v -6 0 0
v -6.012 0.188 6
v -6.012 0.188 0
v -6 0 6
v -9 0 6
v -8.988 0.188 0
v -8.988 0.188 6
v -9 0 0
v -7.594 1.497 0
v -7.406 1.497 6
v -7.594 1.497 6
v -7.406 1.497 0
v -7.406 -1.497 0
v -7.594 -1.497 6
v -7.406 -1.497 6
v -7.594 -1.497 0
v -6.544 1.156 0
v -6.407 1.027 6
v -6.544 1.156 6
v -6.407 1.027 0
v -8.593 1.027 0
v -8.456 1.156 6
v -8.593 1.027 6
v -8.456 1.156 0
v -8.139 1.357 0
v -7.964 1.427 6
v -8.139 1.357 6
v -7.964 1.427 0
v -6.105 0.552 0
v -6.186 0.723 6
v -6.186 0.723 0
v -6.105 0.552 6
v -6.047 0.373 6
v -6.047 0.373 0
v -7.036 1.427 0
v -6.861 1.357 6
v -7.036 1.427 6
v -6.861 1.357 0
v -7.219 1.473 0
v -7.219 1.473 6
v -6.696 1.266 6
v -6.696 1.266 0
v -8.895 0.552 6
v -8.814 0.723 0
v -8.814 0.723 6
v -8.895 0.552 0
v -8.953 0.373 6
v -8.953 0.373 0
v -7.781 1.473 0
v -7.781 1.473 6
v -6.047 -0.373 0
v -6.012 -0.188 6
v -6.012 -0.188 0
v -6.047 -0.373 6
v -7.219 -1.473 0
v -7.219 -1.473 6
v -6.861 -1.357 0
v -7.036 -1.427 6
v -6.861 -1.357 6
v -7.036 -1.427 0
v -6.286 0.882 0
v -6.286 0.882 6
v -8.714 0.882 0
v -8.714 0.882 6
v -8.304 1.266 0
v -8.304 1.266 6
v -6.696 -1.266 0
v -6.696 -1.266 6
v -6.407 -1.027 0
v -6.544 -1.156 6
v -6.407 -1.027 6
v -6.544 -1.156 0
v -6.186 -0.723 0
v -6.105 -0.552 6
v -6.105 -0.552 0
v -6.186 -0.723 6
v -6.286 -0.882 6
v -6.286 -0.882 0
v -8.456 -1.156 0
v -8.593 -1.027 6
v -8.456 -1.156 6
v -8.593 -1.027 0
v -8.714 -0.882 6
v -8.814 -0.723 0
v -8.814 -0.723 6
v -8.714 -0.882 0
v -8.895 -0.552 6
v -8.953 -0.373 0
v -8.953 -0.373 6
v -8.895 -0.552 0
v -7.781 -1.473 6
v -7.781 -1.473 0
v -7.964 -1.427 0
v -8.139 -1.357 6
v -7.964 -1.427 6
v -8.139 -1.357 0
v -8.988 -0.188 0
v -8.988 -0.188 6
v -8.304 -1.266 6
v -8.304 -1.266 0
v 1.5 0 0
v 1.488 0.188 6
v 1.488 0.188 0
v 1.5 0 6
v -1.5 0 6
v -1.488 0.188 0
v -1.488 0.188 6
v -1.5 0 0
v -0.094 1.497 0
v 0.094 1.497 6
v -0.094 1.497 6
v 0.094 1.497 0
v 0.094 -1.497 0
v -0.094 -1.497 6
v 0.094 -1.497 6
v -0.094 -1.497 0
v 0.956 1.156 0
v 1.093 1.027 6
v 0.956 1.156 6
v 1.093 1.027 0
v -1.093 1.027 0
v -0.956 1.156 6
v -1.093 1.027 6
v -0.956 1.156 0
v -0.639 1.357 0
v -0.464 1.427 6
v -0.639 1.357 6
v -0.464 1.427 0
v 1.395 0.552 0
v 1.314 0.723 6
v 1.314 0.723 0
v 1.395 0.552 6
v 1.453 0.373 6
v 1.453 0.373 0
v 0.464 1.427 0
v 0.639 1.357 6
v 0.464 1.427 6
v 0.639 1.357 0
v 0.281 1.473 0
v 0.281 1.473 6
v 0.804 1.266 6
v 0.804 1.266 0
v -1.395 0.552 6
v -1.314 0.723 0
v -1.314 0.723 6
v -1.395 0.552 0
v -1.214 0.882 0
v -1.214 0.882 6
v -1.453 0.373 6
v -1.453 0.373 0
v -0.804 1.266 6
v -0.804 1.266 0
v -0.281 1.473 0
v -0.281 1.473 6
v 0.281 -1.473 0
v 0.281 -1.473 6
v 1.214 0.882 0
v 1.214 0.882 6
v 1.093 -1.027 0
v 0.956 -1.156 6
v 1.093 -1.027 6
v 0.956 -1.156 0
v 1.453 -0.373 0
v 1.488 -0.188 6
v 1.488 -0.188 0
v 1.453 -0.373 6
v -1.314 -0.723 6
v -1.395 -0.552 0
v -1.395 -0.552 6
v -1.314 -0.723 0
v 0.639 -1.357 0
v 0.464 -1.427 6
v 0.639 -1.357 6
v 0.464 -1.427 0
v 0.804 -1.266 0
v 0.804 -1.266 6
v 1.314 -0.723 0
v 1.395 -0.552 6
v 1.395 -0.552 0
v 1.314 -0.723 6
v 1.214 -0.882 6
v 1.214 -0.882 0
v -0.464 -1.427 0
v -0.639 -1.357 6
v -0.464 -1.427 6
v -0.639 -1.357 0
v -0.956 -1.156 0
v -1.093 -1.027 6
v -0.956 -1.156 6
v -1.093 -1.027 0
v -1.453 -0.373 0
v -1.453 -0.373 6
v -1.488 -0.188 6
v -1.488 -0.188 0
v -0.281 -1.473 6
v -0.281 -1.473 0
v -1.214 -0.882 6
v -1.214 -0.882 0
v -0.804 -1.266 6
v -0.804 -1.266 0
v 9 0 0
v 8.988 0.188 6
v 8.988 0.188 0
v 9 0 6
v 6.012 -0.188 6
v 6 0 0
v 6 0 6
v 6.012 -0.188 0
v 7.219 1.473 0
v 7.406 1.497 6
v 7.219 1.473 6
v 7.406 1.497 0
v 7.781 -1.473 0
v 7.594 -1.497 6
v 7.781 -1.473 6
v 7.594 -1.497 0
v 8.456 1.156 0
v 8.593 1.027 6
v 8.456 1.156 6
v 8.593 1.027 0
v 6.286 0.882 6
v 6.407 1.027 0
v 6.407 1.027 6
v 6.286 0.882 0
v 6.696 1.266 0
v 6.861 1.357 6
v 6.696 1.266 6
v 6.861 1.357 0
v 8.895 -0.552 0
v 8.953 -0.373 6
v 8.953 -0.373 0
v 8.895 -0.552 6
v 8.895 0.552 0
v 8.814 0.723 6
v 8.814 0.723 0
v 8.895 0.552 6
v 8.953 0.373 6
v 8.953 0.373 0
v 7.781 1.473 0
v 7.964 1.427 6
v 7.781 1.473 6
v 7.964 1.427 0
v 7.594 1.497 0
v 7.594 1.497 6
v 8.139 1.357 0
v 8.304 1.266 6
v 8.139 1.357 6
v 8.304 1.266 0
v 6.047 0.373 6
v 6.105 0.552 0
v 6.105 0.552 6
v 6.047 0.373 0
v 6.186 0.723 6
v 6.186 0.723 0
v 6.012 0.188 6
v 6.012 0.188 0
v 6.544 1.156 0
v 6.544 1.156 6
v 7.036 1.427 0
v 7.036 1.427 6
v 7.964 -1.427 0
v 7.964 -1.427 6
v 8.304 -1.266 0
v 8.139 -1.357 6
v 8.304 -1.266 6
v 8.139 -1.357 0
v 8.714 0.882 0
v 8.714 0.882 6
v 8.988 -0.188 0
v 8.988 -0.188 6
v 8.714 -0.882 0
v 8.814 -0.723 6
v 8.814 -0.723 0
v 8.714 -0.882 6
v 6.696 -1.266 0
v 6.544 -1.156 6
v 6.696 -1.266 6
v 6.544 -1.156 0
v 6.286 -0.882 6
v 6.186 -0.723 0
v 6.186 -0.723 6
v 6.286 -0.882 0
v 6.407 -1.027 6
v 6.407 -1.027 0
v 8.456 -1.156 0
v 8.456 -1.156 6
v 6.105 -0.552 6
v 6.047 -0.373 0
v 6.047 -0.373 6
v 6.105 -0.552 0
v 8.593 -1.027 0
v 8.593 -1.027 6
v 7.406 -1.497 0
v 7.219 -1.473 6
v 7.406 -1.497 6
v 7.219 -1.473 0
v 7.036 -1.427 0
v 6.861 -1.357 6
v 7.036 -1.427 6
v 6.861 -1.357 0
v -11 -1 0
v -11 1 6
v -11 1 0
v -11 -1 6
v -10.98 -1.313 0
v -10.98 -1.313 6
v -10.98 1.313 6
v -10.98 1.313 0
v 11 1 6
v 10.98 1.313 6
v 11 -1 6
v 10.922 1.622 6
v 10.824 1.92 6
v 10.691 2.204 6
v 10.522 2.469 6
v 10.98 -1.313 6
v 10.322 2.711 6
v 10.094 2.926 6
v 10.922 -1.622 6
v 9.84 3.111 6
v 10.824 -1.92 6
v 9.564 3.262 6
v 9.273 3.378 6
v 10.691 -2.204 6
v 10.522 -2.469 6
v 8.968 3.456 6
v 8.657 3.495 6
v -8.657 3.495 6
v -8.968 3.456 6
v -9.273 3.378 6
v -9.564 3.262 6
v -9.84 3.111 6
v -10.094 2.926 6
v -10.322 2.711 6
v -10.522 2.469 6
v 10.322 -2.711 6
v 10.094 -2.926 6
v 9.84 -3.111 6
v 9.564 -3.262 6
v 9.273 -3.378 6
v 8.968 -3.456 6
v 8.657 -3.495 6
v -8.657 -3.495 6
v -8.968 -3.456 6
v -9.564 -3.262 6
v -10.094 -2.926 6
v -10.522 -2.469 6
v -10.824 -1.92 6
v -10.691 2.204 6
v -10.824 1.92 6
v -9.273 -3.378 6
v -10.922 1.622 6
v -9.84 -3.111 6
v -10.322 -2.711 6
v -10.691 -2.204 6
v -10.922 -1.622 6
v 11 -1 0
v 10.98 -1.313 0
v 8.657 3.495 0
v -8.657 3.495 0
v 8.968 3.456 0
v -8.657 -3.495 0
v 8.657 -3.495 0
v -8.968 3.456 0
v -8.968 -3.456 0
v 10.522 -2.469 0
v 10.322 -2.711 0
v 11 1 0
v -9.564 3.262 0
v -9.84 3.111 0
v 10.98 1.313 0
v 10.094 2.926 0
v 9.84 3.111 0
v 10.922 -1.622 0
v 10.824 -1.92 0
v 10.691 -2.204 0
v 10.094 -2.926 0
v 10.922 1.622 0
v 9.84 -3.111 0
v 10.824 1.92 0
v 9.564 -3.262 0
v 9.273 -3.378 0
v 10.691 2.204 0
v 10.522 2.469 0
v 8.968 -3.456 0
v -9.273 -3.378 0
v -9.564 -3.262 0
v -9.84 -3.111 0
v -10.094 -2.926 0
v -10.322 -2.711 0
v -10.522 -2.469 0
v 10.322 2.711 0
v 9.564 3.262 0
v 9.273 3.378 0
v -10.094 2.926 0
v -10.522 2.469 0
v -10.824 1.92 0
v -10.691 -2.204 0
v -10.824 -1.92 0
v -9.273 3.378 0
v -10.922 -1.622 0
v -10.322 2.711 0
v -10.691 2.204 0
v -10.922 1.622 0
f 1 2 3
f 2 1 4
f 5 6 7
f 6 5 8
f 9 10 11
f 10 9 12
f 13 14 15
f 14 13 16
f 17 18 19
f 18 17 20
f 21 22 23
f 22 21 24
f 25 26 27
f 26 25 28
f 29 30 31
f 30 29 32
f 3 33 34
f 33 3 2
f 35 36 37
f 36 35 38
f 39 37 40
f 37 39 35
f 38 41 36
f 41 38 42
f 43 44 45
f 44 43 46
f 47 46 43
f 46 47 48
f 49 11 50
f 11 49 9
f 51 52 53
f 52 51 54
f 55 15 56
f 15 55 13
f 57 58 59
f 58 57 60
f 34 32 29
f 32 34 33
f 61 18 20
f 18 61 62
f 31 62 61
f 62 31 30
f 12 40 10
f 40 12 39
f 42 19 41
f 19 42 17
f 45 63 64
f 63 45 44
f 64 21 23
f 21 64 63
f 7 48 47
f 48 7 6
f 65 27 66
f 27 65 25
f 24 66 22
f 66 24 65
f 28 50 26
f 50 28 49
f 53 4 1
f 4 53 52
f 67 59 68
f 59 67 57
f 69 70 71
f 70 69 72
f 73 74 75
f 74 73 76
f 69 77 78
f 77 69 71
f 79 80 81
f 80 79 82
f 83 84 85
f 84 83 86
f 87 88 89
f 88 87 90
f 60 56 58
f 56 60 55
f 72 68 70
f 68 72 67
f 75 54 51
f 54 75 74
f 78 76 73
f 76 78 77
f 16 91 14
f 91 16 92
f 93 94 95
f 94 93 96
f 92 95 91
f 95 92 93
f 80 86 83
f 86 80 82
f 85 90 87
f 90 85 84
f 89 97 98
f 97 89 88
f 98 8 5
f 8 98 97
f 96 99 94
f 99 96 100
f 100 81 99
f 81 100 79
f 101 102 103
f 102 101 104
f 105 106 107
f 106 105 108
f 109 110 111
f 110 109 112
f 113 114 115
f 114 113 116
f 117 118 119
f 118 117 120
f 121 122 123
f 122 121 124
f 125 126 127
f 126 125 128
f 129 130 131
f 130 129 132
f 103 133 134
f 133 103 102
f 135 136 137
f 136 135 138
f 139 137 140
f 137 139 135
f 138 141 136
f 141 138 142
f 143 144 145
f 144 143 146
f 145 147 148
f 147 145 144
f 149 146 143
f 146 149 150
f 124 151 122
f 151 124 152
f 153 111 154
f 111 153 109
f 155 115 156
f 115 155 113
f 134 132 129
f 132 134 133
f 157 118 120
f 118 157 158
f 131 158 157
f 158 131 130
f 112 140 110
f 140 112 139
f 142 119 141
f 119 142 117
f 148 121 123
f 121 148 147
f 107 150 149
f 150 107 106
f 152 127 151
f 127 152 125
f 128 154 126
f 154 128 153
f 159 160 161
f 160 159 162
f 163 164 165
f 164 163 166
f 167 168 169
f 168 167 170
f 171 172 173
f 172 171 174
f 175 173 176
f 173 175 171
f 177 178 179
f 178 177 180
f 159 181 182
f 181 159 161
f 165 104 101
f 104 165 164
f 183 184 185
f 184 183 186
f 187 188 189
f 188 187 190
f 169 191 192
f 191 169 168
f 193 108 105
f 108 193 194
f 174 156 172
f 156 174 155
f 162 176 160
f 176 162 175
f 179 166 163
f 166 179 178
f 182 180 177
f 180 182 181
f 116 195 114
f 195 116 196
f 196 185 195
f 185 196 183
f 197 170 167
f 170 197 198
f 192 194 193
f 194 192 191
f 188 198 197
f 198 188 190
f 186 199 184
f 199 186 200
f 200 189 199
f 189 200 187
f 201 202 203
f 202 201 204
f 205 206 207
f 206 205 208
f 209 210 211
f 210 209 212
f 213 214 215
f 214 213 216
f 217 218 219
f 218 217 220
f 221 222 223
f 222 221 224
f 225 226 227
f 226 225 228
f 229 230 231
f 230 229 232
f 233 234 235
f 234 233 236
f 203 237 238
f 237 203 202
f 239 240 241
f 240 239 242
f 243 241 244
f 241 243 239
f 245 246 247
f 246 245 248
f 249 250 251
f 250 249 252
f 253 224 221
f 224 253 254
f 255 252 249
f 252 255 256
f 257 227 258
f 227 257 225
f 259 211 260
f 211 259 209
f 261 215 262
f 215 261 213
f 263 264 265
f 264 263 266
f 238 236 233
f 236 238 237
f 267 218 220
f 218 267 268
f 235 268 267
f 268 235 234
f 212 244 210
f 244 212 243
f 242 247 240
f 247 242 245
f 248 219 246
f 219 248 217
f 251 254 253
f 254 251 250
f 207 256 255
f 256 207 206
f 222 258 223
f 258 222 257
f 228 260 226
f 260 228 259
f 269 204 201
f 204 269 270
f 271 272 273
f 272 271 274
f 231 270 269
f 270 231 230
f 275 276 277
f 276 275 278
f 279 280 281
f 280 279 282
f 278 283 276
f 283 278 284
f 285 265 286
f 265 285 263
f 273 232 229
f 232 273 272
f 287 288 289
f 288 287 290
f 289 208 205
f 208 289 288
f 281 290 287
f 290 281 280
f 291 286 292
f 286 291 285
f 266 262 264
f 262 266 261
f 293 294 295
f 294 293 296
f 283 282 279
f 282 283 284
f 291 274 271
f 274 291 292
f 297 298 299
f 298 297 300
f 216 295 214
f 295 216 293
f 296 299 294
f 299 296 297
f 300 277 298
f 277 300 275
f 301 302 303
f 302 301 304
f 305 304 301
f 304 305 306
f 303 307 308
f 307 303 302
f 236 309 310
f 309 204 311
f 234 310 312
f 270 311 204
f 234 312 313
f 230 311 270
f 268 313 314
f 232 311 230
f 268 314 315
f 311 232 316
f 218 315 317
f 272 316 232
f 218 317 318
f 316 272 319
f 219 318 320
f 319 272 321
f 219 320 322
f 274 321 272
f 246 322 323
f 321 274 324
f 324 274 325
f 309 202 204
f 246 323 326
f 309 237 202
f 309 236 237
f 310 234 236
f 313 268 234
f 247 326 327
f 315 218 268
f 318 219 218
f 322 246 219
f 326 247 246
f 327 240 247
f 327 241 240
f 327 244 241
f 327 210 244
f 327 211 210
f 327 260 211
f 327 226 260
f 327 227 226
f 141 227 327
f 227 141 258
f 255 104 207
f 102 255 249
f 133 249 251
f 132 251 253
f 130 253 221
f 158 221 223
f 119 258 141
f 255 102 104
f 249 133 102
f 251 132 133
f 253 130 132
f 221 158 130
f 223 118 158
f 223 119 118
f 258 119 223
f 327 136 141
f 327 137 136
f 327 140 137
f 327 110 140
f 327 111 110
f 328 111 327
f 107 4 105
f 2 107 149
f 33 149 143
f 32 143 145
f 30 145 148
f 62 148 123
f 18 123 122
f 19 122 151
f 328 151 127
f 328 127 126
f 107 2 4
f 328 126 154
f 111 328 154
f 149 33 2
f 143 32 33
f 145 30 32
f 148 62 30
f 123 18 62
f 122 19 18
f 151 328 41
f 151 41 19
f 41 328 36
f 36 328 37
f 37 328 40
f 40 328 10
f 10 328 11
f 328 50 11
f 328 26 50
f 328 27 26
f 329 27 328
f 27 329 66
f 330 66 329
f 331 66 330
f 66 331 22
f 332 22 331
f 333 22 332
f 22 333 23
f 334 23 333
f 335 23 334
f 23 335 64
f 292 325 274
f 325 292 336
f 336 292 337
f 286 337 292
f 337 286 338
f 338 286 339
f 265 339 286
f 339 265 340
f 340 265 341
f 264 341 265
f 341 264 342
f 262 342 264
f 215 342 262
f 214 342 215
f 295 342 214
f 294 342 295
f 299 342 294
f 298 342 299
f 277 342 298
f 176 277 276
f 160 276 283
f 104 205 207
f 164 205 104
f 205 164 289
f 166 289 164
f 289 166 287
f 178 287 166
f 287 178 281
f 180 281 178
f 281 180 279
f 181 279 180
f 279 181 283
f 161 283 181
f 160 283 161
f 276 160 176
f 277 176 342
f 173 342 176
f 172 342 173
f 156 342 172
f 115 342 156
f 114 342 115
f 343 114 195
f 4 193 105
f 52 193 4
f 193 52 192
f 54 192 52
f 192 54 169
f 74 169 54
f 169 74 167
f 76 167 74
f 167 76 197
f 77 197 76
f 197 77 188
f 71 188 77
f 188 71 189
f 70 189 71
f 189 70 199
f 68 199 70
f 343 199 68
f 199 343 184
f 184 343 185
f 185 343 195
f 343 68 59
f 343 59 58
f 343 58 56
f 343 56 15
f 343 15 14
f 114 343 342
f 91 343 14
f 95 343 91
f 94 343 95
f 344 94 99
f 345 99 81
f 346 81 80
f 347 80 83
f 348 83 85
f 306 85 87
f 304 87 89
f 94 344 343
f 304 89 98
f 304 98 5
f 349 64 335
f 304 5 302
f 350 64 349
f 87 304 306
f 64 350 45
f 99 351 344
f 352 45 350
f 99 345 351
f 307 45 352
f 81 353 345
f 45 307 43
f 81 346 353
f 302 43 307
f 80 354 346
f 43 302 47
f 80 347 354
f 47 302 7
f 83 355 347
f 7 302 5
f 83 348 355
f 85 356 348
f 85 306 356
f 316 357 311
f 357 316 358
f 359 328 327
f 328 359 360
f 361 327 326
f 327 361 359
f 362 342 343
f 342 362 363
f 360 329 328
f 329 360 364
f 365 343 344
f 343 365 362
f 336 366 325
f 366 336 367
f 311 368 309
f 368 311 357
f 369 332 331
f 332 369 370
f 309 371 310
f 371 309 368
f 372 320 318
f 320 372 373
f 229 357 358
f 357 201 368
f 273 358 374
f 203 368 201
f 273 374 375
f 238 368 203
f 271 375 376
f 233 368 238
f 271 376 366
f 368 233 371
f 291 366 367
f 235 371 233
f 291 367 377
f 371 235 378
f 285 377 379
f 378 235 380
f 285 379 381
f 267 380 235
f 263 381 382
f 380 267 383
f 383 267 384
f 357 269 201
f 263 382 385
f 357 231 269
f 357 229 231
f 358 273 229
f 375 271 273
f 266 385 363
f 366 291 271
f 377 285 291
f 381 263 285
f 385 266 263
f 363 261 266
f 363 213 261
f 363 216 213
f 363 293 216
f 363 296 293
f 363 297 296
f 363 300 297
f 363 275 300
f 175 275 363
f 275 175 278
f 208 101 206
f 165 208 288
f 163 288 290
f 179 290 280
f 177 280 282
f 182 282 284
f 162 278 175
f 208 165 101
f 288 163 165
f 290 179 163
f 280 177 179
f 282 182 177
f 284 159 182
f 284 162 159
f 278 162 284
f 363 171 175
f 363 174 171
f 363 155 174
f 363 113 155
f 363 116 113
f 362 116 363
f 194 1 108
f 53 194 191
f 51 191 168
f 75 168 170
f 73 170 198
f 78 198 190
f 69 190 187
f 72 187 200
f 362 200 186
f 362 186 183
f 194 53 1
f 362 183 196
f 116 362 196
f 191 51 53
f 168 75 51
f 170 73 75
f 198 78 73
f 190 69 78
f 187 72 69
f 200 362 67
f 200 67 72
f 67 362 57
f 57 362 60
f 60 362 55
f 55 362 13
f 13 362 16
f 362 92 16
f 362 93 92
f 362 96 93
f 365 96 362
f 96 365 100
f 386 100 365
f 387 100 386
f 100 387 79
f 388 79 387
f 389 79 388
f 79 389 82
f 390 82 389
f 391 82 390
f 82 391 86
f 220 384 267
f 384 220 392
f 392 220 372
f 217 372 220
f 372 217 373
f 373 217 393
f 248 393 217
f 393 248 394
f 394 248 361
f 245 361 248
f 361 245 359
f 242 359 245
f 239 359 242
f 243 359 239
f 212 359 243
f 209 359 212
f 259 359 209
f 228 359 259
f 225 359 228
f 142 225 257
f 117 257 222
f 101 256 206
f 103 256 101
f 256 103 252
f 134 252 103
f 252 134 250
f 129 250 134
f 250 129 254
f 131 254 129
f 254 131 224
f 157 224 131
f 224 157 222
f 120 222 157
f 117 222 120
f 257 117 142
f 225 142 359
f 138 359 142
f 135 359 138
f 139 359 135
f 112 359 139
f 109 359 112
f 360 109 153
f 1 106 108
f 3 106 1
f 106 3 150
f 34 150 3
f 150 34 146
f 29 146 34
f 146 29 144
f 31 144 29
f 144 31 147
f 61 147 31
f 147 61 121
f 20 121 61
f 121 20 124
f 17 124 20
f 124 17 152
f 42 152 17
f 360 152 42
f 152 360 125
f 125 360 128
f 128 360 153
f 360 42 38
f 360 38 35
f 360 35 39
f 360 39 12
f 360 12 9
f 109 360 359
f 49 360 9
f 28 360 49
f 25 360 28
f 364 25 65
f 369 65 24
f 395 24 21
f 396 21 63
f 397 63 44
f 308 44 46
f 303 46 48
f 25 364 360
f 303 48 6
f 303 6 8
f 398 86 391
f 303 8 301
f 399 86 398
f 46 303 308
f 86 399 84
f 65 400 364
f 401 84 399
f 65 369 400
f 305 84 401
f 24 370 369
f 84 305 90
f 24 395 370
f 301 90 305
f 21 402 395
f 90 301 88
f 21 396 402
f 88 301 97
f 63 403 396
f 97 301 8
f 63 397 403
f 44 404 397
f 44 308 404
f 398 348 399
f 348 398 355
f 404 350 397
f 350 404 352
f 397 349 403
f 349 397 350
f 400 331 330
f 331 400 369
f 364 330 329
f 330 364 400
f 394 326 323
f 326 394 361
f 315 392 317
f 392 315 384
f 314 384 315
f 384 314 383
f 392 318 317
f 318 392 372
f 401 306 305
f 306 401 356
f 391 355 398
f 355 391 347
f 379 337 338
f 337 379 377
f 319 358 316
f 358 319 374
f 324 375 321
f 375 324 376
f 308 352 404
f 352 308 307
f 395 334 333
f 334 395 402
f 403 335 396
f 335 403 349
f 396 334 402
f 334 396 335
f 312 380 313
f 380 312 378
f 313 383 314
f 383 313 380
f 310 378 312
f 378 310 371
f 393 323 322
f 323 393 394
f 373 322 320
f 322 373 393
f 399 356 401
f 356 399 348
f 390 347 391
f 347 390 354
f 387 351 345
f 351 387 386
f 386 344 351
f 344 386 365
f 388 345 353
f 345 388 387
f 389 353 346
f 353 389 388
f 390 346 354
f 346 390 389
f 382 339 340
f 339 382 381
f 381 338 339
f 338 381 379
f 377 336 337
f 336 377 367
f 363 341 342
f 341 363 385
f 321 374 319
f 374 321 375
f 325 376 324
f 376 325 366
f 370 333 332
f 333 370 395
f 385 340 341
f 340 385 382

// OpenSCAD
$fn = 50;


difference() {
	union() {
		translate(v = [0, 0, 0]) {
			rotate(a = [0, 0, 0]) {
				hull() {
					translate(v = [-8.5000000000, 1.0000000000, 0]) {
						rotate(a = [0, 0, 0]) {
							translate(v = [0, 0, 0]) {
								rotate(a = [0, 0, 0]) {
									cylinder(h = 6, r = 2.5000000000);
								}
							}
						}
					}
					translate(v = [8.5000000000, 1.0000000000, 0]) {
						rotate(a = [0, 0, 0]) {
							translate(v = [0, 0, 0]) {
								rotate(a = [0, 0, 0]) {
									cylinder(h = 6, r = 2.5000000000);
								}
							}
						}
					}
					translate(v = [-8.5000000000, -1.0000000000, 0]) {
						rotate(a = [0, 0, 0]) {
							translate(v = [0, 0, 0]) {
								rotate(a = [0, 0, 0]) {
									cylinder(h = 6, r = 2.5000000000);
								}
							}
						}
					}
					translate(v = [8.5000000000, -1.0000000000, 0]) {
						rotate(a = [0, 0, 0]) {
							translate(v = [0, 0, 0]) {
								rotate(a = [0, 0, 0]) {
									cylinder(h = 6, r = 2.5000000000);
								}
							}
						}
					}
				}
			}
		}
	}
	union() {
		translate(v = [-7.5000000000, 0.0000000000, 0]) {
			rotate(a = [0, 0, 0]) {
				translate(v = [0, 0, -50]) {
					rotate(a = [0, 0, 0]) {
						cylinder(h = 100, r = 1.5000000000);
					}
				}
			}
		}
		translate(v = [0.0000000000, 0.0000000000, 0]) {
			rotate(a = [0, 0, 0]) {
				translate(v = [0, 0, -50]) {
					rotate(a = [0, 0, 0]) {
						cylinder(h = 100, r = 1.5000000000);
					}
				}
			}
		}
		translate(v = [7.5000000000, 0.0000000000, 0]) {
			rotate(a = [0, 0, 0]) {
				translate(v = [0, 0, -50]) {
					rotate(a = [0, 0, 0]) {
						cylinder(h = 100, r = 1.5000000000);
					}
				}
			}
		}
	}
}
